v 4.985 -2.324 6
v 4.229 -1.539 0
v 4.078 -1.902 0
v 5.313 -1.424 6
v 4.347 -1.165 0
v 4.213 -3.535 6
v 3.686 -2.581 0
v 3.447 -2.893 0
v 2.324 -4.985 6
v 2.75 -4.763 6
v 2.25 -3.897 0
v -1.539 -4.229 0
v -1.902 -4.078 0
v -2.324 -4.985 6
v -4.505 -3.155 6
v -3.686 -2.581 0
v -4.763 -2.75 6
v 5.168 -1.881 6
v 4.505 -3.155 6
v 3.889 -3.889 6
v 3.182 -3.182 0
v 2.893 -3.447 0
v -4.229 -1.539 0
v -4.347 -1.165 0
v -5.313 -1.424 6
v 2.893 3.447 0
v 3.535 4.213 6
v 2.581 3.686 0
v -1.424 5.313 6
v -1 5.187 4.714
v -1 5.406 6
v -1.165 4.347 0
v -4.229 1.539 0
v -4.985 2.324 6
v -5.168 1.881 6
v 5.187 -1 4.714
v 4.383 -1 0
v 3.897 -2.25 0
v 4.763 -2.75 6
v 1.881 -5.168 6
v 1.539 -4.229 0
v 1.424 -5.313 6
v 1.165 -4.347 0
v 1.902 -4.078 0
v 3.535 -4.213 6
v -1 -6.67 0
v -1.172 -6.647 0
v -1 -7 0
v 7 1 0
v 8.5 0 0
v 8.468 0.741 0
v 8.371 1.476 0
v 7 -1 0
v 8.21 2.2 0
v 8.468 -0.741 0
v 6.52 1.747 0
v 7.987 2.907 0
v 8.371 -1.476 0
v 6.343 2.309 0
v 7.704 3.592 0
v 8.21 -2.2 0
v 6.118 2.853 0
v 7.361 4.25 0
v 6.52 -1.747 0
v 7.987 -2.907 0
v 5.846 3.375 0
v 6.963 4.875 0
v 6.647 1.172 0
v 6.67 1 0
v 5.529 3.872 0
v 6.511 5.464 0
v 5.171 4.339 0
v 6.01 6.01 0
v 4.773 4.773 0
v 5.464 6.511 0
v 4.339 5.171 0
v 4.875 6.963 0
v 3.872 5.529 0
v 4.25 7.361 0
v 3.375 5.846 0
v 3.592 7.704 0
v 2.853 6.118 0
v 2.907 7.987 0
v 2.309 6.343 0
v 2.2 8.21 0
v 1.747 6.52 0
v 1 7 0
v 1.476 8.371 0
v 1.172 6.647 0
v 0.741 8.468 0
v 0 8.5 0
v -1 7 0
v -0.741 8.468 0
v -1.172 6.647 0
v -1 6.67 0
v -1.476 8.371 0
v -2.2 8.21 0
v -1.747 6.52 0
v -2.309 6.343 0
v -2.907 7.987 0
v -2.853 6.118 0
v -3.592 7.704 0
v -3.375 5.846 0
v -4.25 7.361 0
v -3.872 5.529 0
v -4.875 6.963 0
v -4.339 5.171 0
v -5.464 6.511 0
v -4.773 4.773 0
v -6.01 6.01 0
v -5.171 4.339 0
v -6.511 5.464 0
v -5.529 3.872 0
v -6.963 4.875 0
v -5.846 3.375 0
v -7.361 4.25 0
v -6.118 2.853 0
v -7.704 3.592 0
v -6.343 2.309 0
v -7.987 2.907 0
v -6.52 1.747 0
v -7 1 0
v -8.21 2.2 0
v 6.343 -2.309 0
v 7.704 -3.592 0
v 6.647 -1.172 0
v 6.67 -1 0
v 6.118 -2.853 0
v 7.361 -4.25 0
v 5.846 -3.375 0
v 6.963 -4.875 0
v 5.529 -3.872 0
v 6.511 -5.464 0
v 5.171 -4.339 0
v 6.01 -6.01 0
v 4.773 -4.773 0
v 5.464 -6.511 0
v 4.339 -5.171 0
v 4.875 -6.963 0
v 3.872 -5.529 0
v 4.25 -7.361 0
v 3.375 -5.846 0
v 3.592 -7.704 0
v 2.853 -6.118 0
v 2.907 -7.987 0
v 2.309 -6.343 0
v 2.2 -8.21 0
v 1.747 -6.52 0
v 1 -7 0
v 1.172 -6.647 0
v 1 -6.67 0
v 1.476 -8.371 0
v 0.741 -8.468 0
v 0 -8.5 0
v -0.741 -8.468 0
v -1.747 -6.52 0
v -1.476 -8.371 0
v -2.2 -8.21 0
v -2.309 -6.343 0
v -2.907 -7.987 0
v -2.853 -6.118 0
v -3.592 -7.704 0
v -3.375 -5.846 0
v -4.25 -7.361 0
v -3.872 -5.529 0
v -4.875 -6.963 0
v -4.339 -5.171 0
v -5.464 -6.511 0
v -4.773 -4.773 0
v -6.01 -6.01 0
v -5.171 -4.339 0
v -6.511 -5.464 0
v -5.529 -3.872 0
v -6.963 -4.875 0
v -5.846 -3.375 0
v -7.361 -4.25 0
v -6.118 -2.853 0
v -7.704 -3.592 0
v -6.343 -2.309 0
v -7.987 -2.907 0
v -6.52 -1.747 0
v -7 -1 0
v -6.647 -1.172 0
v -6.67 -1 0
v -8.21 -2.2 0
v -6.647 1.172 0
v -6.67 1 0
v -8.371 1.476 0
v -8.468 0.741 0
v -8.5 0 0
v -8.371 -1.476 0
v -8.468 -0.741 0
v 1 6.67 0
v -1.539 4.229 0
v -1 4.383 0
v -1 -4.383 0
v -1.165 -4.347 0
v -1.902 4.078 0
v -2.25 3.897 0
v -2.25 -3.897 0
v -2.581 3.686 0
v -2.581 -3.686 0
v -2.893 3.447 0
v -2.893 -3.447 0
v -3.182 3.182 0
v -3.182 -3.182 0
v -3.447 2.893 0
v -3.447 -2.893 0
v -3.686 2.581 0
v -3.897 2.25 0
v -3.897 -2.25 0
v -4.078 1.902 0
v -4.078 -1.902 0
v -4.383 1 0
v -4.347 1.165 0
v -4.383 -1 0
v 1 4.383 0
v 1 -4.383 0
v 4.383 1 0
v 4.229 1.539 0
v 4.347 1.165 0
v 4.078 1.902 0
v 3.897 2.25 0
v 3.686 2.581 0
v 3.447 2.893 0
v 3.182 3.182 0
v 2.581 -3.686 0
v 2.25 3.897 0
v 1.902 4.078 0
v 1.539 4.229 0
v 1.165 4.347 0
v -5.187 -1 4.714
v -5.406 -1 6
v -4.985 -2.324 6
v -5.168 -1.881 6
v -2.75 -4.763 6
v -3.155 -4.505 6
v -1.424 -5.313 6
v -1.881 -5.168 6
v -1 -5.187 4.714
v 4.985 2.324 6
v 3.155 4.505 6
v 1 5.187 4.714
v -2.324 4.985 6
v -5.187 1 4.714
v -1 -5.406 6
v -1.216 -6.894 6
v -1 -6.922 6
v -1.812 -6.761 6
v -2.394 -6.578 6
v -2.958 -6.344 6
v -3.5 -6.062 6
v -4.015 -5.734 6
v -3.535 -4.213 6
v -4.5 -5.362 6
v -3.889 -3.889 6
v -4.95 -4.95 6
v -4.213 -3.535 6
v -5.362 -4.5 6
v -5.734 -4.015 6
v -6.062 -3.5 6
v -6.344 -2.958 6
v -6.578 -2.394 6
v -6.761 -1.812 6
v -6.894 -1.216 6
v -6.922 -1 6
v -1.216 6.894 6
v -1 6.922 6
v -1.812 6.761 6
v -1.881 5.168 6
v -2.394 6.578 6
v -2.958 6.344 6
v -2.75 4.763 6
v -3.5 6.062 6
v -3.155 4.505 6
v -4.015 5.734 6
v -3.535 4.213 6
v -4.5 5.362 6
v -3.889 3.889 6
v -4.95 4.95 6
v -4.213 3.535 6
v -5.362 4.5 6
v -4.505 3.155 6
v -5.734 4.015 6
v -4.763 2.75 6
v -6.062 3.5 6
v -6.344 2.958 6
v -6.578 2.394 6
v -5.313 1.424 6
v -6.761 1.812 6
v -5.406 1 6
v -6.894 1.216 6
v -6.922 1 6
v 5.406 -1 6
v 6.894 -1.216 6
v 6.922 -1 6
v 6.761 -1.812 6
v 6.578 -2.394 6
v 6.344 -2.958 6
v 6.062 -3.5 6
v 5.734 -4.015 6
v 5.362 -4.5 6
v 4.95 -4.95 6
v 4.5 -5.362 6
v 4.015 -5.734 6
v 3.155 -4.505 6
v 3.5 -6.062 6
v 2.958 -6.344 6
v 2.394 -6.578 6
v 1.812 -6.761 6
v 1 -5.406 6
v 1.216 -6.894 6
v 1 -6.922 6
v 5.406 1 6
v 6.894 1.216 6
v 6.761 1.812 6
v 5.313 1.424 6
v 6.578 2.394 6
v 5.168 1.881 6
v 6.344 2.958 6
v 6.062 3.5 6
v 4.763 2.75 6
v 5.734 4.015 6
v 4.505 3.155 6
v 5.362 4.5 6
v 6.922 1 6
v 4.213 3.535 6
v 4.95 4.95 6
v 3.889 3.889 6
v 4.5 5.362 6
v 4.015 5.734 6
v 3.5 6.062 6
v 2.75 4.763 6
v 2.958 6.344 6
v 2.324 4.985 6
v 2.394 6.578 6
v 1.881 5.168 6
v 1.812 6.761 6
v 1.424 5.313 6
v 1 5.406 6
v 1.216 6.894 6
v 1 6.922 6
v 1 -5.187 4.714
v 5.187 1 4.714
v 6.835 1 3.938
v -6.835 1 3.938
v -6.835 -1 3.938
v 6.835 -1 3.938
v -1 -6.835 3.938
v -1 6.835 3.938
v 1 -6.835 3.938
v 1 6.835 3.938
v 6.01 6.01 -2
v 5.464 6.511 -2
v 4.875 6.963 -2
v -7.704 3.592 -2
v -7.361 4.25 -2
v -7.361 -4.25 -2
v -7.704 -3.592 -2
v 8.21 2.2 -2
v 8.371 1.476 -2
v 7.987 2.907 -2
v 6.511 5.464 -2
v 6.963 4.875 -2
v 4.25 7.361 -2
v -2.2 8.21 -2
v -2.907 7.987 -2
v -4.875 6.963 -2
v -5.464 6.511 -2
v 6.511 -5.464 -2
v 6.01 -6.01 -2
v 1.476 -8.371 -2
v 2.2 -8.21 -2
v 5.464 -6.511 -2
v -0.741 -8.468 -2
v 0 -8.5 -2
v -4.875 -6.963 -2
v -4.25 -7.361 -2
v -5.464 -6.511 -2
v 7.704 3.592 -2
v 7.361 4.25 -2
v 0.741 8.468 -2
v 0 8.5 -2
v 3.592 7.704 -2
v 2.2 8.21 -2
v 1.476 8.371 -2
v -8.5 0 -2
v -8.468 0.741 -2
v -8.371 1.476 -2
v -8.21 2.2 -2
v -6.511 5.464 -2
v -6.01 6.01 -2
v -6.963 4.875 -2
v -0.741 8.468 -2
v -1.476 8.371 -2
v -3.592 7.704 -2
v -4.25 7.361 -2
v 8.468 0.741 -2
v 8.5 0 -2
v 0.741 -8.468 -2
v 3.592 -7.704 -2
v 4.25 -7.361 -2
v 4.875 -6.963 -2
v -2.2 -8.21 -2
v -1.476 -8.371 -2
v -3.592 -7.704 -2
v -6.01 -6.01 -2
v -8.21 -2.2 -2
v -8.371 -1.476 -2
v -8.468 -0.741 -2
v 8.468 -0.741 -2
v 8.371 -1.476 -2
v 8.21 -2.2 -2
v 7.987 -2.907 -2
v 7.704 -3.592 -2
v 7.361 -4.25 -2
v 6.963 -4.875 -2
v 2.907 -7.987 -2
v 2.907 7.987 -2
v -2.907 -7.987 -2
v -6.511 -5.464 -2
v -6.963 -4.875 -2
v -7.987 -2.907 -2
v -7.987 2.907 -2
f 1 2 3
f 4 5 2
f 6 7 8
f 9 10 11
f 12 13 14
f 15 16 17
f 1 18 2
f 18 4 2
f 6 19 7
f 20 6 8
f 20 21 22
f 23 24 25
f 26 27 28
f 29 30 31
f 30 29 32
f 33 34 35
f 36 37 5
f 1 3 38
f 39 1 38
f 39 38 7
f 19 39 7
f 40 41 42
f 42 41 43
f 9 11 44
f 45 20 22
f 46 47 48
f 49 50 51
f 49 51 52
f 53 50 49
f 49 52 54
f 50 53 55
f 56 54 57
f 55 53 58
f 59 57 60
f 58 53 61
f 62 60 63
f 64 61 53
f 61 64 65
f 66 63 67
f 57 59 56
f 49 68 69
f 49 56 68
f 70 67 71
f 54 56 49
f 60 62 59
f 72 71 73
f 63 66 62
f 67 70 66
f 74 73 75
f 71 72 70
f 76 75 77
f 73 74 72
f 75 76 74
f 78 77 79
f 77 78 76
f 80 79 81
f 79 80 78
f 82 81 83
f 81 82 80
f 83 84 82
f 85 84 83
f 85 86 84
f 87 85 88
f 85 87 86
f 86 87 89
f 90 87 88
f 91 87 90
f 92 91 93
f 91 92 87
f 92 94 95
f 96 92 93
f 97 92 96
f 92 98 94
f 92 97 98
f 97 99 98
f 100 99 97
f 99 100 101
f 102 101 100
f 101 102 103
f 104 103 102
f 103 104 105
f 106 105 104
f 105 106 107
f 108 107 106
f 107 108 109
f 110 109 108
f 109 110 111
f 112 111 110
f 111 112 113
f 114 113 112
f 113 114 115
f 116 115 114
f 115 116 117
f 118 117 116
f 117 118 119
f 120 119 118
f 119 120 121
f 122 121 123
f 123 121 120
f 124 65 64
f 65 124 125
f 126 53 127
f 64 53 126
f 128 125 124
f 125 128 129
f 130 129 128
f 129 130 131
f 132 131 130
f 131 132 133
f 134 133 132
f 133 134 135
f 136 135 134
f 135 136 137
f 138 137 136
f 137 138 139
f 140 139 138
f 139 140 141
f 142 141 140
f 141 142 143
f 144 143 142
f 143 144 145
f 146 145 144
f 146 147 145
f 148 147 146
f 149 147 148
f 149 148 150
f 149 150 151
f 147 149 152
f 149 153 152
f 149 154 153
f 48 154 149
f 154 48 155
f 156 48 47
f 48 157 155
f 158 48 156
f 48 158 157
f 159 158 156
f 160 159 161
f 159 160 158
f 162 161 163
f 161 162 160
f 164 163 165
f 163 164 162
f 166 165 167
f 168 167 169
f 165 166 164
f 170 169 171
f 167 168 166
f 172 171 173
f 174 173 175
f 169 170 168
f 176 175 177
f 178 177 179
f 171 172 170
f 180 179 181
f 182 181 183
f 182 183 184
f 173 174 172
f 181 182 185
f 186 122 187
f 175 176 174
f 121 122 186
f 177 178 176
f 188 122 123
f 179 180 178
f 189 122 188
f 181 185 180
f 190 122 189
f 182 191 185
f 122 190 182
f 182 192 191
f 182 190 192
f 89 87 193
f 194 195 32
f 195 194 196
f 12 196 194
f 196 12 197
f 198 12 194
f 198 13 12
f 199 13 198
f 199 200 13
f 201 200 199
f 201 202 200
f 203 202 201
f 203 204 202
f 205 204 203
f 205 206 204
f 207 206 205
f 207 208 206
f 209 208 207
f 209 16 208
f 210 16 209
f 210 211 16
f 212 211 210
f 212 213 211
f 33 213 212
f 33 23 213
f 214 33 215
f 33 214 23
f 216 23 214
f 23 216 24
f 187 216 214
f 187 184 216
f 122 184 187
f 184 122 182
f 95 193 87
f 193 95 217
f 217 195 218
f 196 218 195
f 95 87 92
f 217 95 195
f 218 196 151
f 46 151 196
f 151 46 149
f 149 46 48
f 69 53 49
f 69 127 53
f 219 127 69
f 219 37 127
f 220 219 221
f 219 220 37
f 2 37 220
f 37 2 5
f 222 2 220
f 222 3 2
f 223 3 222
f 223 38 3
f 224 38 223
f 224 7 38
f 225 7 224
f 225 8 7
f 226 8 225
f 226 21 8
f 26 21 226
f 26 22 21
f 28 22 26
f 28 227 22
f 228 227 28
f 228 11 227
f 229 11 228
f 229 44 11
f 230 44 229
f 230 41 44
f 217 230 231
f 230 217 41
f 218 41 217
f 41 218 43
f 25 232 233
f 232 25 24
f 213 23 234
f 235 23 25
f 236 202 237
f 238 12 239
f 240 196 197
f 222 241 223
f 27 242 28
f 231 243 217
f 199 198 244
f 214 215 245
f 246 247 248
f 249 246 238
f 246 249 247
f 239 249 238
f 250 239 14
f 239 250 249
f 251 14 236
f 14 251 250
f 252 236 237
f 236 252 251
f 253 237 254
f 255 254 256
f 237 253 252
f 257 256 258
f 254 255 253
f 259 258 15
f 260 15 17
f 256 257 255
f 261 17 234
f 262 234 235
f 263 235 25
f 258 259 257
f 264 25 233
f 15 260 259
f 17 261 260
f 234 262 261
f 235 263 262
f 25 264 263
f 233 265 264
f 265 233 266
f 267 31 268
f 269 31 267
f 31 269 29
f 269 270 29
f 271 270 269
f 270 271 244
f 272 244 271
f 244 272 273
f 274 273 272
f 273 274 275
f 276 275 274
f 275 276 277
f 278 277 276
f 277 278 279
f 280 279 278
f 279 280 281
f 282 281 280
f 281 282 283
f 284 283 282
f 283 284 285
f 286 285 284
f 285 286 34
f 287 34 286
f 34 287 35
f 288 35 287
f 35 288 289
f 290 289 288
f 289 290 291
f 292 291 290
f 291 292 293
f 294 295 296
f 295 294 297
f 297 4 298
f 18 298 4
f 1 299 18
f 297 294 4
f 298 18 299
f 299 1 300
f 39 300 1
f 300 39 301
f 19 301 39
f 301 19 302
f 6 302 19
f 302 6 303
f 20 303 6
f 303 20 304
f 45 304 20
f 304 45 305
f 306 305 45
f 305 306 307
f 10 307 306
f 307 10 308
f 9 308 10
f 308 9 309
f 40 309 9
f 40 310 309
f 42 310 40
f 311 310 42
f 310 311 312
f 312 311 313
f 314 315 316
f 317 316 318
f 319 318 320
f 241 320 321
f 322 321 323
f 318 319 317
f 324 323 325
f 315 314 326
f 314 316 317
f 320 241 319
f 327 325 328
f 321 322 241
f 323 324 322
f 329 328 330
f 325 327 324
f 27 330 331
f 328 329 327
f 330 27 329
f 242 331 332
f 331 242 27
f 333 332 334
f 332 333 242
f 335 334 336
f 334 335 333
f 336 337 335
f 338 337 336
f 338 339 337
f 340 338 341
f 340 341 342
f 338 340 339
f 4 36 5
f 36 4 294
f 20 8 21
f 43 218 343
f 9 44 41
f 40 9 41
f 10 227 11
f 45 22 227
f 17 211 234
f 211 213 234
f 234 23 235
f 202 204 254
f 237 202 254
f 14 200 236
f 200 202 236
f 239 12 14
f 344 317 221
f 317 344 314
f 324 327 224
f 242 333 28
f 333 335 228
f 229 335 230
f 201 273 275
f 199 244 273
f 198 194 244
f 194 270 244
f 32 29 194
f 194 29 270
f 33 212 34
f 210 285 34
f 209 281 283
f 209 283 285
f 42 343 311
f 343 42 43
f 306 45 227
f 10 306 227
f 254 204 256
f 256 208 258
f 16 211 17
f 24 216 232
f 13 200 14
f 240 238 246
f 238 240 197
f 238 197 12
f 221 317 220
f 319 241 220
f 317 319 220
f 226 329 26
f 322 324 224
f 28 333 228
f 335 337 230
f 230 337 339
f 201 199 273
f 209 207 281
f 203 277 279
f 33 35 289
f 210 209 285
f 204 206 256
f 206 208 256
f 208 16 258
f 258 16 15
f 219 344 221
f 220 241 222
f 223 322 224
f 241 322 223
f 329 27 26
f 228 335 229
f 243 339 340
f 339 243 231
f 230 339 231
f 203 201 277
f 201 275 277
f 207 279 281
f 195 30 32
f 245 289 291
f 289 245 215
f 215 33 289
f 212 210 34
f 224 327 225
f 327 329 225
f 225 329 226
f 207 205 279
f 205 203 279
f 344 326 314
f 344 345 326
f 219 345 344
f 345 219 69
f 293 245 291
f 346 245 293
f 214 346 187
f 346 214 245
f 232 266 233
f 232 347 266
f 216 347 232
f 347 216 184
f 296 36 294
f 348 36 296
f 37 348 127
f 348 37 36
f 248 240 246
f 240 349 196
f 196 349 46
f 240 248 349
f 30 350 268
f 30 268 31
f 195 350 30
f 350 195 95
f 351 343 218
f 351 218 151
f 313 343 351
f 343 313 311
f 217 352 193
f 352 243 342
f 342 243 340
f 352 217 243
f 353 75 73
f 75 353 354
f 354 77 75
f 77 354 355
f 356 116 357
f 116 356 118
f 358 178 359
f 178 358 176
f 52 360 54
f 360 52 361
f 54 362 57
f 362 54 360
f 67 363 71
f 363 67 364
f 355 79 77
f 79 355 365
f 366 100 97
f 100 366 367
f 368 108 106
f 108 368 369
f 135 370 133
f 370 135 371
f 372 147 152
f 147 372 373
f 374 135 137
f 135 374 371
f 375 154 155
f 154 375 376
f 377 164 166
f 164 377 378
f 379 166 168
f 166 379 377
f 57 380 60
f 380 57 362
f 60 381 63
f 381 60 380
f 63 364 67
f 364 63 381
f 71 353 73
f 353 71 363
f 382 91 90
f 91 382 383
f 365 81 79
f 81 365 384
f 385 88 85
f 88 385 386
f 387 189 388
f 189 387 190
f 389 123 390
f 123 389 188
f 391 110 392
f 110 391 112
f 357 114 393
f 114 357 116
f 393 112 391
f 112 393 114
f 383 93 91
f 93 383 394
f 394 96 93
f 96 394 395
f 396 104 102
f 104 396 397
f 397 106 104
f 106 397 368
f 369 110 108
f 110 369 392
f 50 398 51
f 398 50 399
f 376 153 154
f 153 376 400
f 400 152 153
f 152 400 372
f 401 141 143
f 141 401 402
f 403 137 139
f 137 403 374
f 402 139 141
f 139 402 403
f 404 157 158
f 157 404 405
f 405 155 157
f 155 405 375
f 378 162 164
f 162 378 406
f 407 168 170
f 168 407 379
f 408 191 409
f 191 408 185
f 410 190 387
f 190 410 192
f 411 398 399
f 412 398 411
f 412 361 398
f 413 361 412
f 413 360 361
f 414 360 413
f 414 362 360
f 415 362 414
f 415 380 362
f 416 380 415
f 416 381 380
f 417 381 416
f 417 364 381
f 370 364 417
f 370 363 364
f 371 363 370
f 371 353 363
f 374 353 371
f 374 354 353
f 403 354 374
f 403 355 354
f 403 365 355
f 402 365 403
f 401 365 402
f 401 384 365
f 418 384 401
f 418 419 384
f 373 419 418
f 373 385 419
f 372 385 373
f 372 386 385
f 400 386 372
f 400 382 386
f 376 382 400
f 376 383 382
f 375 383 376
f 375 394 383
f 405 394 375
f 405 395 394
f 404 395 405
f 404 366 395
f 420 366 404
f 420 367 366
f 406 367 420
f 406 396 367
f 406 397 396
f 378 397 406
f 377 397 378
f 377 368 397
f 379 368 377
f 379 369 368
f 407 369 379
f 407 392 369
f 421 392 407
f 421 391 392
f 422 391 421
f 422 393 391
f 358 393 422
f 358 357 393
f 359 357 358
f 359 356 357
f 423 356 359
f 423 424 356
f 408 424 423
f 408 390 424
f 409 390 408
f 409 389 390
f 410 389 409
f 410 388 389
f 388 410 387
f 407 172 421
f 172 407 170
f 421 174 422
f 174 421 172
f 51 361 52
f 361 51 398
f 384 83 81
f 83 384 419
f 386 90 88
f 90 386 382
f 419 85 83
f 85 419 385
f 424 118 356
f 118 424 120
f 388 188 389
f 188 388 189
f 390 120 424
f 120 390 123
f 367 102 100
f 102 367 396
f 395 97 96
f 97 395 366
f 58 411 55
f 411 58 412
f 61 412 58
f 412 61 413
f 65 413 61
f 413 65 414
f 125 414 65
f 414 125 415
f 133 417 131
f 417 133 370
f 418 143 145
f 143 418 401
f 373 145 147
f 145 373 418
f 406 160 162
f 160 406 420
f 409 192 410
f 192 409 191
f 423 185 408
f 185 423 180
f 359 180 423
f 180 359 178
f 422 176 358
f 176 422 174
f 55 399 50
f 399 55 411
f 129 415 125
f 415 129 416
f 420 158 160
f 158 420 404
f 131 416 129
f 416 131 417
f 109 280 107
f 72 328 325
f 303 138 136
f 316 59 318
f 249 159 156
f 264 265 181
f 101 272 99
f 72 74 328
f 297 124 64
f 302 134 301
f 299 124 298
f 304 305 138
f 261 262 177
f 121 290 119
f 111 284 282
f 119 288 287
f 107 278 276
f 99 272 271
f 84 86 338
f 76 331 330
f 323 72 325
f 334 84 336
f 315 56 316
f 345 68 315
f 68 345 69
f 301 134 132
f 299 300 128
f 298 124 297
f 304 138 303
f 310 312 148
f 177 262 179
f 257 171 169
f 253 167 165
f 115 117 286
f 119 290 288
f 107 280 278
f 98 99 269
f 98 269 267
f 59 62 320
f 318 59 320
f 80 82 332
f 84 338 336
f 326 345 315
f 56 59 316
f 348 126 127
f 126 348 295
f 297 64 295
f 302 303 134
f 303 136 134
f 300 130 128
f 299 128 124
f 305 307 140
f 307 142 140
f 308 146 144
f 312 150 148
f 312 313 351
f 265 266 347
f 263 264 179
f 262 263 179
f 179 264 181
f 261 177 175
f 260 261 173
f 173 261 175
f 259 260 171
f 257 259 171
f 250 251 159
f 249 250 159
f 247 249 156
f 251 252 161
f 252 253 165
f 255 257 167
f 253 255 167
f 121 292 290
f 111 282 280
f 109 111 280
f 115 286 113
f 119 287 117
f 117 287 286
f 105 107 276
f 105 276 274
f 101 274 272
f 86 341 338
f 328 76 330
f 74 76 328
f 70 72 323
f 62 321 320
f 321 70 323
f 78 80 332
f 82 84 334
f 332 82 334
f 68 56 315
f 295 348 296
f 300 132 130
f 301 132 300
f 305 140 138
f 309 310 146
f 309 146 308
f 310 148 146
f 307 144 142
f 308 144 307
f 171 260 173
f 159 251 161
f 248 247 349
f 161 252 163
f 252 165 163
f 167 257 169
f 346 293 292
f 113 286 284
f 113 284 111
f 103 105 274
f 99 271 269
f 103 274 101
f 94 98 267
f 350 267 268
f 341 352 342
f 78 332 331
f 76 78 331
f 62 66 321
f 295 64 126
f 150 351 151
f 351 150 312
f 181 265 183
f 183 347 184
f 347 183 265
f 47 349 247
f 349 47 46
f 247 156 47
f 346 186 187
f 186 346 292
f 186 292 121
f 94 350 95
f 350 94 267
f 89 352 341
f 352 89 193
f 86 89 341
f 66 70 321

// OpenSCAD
$fa=5; $fs=0.1;

difference(){
	union(){
		translate([0,0,-1]) cylinder(h=2, r=8.5, center=true);
		translate([0,0,3]) cylinder(h=6, r1=6.75, r2=7, center=true);
	}

	union(){
		translate([0,0,3]) {
			cylinder(h=6, r1=4.5, r2=5.5, center=true);
			cube([14, 2, 6], center=true);
			cube([2, 14, 6], center=true);
		}
	}
}
